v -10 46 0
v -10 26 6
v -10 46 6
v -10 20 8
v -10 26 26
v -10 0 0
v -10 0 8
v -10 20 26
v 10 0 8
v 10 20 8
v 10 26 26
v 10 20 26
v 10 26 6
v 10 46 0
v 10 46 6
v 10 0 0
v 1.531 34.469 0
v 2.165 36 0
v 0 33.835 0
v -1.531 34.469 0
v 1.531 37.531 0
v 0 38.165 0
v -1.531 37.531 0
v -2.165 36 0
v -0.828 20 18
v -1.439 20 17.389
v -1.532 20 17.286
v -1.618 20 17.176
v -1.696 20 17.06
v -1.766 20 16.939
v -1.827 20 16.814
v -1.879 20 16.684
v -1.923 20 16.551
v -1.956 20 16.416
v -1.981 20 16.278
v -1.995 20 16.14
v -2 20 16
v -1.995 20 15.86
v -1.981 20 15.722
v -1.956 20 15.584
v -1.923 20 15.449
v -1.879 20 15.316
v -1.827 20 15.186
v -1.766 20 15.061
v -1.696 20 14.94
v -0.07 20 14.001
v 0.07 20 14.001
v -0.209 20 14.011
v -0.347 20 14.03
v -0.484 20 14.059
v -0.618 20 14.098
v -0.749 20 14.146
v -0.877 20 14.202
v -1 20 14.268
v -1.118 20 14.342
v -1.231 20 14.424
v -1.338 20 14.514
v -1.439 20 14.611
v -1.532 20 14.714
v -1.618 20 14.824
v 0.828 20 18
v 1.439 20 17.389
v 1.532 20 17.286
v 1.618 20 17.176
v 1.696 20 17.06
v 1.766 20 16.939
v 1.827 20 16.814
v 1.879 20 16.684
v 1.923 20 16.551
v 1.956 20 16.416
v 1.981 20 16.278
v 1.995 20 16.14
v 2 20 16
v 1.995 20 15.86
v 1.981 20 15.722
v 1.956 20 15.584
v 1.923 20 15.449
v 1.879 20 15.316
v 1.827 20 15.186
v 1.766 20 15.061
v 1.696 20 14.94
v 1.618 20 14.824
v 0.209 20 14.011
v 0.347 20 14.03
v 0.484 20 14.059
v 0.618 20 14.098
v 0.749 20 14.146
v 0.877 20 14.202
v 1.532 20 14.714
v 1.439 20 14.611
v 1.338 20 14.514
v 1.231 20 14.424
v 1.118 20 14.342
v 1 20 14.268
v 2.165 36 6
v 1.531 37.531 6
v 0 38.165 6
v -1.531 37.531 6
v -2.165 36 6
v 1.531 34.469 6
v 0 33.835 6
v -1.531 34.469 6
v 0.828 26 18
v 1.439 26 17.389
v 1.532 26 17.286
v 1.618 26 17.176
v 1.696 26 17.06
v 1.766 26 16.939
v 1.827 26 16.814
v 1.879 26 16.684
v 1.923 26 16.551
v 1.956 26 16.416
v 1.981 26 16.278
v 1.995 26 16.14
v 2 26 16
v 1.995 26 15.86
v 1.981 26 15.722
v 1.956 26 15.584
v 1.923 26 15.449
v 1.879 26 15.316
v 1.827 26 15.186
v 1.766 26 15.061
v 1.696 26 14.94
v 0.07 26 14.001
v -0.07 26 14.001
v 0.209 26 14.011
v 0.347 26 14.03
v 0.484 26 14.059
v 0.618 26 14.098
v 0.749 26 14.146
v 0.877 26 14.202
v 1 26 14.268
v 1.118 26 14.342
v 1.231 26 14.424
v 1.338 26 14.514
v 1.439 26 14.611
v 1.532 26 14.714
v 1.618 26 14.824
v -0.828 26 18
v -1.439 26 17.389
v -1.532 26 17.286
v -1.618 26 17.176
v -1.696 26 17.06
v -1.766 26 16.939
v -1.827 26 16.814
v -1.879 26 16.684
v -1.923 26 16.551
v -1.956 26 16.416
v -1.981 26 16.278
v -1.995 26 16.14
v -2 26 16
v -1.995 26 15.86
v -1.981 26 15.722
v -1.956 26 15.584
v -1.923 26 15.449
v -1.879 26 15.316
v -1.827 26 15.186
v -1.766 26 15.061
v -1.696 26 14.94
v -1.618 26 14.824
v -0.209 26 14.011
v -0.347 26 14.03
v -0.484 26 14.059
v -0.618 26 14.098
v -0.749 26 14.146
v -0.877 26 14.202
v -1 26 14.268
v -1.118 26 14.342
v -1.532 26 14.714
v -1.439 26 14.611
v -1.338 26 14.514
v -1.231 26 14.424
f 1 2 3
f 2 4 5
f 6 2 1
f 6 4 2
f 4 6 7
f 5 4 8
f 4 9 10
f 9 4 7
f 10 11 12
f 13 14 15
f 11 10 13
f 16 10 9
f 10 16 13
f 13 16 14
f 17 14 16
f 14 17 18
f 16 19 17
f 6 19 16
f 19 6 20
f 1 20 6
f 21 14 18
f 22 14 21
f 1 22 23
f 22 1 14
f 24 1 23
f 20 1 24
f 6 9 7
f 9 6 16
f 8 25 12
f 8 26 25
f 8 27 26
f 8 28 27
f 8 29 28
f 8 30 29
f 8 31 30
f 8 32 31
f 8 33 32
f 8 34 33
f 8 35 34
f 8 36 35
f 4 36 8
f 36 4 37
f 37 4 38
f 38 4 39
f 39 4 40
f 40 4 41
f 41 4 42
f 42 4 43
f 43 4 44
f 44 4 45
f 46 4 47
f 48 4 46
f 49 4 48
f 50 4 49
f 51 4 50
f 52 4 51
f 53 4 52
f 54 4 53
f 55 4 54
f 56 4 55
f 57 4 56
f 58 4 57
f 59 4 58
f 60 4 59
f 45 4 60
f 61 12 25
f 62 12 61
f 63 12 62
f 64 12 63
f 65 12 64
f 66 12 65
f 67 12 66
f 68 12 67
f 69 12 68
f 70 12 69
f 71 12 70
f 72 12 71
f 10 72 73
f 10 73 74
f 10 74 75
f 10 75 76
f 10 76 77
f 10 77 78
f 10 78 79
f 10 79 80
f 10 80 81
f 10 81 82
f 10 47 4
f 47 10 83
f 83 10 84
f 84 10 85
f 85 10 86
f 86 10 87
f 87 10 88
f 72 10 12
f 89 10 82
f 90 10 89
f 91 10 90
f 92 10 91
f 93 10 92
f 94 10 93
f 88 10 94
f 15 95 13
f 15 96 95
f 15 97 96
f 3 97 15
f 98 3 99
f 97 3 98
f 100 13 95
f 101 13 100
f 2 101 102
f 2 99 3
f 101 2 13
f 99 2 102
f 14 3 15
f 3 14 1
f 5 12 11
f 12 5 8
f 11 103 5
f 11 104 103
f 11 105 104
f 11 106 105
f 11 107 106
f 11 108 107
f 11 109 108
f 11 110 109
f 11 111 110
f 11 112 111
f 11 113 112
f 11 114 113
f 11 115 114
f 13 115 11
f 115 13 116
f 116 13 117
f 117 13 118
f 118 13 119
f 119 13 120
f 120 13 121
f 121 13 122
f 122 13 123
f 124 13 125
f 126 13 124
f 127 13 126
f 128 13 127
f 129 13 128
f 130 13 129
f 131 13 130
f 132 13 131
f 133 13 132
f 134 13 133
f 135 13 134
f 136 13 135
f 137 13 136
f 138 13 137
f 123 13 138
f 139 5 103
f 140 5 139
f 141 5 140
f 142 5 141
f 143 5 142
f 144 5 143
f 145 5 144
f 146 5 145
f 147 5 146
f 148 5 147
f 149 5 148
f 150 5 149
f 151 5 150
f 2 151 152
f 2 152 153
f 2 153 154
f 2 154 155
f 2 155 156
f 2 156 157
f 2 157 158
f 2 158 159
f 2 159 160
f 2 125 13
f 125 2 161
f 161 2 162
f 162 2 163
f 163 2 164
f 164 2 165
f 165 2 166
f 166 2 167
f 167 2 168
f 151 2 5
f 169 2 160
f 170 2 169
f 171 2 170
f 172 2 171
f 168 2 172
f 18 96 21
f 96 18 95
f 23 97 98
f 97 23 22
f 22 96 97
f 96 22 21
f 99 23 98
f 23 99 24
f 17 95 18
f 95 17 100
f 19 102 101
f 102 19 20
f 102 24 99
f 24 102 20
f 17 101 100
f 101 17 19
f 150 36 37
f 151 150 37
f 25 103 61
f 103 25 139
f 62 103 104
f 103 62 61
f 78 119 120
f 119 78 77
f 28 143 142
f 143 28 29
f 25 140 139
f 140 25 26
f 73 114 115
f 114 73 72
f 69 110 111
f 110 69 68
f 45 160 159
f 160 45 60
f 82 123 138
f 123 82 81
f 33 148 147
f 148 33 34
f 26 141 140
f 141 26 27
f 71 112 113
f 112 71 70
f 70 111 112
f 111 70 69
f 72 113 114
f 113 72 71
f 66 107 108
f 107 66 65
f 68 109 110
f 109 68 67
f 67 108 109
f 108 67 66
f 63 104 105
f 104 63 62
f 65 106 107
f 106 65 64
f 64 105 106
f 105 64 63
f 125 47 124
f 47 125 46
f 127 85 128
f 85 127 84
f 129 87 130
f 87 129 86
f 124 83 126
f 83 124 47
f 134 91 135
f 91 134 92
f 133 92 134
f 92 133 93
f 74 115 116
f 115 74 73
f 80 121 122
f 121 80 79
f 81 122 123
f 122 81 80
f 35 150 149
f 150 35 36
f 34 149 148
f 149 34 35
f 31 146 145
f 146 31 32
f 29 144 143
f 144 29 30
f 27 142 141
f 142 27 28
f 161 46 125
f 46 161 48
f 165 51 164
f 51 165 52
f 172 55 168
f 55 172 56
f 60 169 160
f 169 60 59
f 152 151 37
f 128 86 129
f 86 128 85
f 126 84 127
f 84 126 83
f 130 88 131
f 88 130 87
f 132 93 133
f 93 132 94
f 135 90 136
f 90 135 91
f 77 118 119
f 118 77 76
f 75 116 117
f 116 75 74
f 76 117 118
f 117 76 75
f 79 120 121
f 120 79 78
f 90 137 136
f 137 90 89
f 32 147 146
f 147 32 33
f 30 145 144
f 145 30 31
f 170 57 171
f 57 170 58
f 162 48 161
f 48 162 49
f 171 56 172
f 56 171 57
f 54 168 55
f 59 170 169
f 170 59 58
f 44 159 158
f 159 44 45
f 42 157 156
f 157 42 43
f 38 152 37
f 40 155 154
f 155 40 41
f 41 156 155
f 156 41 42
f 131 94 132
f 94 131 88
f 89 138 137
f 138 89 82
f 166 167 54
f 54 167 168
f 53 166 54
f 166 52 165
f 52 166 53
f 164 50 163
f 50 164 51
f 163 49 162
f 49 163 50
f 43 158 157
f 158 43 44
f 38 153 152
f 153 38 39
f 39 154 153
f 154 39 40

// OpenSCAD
// file: trunctear.scad
//A module for truncated tear drops.

trunctear(1, 0.5, $fn = 90);

module trunctear(hei, radian, cent = false)
{
    linear_extrude(height = hei, center = cent)
        hull()
        {
            circle(r = radian);
            translate([0, radian/2])
                square([2*(radian*(2*cos(45)-1)), radian], center = true);
        }
}
// file: polyhole.scad
// The Cylinder is dead! Long live the Cylinder!
// A module for a polyhole by radius, based on Nophead's work.

module polyhole(h, r, cent = false)
{
    n = max(round(4 * r), 3);
    cylinder(h = h, r = r / cos(180 / n), $fn = n, center = cent);
}
// main file
// A spacer and mount for the cross section extrusions

use<polyhole.scad>
use<trunctear.scad>

SpacerMount();

module SpacerMount()
{
    difference()
    {
        union()
        {
            translate([0, 10, 4])
                cube([20, 20, , 8], center = true);
            translate([0, (2*20+6)/2, 3])
                cube([20, 2*20+6, , 6], center = true);
            translate([0, 23, 13])
                cube([20, 6, 26], center = true);
        }
        translate([0, 2*20+6-10, 0])
            polyhole(6, 2);
        translate([0, 20, 16])
            rotate([90, 0, 180])
                trunctear(6, 2, $fn = 90);
    }
}
